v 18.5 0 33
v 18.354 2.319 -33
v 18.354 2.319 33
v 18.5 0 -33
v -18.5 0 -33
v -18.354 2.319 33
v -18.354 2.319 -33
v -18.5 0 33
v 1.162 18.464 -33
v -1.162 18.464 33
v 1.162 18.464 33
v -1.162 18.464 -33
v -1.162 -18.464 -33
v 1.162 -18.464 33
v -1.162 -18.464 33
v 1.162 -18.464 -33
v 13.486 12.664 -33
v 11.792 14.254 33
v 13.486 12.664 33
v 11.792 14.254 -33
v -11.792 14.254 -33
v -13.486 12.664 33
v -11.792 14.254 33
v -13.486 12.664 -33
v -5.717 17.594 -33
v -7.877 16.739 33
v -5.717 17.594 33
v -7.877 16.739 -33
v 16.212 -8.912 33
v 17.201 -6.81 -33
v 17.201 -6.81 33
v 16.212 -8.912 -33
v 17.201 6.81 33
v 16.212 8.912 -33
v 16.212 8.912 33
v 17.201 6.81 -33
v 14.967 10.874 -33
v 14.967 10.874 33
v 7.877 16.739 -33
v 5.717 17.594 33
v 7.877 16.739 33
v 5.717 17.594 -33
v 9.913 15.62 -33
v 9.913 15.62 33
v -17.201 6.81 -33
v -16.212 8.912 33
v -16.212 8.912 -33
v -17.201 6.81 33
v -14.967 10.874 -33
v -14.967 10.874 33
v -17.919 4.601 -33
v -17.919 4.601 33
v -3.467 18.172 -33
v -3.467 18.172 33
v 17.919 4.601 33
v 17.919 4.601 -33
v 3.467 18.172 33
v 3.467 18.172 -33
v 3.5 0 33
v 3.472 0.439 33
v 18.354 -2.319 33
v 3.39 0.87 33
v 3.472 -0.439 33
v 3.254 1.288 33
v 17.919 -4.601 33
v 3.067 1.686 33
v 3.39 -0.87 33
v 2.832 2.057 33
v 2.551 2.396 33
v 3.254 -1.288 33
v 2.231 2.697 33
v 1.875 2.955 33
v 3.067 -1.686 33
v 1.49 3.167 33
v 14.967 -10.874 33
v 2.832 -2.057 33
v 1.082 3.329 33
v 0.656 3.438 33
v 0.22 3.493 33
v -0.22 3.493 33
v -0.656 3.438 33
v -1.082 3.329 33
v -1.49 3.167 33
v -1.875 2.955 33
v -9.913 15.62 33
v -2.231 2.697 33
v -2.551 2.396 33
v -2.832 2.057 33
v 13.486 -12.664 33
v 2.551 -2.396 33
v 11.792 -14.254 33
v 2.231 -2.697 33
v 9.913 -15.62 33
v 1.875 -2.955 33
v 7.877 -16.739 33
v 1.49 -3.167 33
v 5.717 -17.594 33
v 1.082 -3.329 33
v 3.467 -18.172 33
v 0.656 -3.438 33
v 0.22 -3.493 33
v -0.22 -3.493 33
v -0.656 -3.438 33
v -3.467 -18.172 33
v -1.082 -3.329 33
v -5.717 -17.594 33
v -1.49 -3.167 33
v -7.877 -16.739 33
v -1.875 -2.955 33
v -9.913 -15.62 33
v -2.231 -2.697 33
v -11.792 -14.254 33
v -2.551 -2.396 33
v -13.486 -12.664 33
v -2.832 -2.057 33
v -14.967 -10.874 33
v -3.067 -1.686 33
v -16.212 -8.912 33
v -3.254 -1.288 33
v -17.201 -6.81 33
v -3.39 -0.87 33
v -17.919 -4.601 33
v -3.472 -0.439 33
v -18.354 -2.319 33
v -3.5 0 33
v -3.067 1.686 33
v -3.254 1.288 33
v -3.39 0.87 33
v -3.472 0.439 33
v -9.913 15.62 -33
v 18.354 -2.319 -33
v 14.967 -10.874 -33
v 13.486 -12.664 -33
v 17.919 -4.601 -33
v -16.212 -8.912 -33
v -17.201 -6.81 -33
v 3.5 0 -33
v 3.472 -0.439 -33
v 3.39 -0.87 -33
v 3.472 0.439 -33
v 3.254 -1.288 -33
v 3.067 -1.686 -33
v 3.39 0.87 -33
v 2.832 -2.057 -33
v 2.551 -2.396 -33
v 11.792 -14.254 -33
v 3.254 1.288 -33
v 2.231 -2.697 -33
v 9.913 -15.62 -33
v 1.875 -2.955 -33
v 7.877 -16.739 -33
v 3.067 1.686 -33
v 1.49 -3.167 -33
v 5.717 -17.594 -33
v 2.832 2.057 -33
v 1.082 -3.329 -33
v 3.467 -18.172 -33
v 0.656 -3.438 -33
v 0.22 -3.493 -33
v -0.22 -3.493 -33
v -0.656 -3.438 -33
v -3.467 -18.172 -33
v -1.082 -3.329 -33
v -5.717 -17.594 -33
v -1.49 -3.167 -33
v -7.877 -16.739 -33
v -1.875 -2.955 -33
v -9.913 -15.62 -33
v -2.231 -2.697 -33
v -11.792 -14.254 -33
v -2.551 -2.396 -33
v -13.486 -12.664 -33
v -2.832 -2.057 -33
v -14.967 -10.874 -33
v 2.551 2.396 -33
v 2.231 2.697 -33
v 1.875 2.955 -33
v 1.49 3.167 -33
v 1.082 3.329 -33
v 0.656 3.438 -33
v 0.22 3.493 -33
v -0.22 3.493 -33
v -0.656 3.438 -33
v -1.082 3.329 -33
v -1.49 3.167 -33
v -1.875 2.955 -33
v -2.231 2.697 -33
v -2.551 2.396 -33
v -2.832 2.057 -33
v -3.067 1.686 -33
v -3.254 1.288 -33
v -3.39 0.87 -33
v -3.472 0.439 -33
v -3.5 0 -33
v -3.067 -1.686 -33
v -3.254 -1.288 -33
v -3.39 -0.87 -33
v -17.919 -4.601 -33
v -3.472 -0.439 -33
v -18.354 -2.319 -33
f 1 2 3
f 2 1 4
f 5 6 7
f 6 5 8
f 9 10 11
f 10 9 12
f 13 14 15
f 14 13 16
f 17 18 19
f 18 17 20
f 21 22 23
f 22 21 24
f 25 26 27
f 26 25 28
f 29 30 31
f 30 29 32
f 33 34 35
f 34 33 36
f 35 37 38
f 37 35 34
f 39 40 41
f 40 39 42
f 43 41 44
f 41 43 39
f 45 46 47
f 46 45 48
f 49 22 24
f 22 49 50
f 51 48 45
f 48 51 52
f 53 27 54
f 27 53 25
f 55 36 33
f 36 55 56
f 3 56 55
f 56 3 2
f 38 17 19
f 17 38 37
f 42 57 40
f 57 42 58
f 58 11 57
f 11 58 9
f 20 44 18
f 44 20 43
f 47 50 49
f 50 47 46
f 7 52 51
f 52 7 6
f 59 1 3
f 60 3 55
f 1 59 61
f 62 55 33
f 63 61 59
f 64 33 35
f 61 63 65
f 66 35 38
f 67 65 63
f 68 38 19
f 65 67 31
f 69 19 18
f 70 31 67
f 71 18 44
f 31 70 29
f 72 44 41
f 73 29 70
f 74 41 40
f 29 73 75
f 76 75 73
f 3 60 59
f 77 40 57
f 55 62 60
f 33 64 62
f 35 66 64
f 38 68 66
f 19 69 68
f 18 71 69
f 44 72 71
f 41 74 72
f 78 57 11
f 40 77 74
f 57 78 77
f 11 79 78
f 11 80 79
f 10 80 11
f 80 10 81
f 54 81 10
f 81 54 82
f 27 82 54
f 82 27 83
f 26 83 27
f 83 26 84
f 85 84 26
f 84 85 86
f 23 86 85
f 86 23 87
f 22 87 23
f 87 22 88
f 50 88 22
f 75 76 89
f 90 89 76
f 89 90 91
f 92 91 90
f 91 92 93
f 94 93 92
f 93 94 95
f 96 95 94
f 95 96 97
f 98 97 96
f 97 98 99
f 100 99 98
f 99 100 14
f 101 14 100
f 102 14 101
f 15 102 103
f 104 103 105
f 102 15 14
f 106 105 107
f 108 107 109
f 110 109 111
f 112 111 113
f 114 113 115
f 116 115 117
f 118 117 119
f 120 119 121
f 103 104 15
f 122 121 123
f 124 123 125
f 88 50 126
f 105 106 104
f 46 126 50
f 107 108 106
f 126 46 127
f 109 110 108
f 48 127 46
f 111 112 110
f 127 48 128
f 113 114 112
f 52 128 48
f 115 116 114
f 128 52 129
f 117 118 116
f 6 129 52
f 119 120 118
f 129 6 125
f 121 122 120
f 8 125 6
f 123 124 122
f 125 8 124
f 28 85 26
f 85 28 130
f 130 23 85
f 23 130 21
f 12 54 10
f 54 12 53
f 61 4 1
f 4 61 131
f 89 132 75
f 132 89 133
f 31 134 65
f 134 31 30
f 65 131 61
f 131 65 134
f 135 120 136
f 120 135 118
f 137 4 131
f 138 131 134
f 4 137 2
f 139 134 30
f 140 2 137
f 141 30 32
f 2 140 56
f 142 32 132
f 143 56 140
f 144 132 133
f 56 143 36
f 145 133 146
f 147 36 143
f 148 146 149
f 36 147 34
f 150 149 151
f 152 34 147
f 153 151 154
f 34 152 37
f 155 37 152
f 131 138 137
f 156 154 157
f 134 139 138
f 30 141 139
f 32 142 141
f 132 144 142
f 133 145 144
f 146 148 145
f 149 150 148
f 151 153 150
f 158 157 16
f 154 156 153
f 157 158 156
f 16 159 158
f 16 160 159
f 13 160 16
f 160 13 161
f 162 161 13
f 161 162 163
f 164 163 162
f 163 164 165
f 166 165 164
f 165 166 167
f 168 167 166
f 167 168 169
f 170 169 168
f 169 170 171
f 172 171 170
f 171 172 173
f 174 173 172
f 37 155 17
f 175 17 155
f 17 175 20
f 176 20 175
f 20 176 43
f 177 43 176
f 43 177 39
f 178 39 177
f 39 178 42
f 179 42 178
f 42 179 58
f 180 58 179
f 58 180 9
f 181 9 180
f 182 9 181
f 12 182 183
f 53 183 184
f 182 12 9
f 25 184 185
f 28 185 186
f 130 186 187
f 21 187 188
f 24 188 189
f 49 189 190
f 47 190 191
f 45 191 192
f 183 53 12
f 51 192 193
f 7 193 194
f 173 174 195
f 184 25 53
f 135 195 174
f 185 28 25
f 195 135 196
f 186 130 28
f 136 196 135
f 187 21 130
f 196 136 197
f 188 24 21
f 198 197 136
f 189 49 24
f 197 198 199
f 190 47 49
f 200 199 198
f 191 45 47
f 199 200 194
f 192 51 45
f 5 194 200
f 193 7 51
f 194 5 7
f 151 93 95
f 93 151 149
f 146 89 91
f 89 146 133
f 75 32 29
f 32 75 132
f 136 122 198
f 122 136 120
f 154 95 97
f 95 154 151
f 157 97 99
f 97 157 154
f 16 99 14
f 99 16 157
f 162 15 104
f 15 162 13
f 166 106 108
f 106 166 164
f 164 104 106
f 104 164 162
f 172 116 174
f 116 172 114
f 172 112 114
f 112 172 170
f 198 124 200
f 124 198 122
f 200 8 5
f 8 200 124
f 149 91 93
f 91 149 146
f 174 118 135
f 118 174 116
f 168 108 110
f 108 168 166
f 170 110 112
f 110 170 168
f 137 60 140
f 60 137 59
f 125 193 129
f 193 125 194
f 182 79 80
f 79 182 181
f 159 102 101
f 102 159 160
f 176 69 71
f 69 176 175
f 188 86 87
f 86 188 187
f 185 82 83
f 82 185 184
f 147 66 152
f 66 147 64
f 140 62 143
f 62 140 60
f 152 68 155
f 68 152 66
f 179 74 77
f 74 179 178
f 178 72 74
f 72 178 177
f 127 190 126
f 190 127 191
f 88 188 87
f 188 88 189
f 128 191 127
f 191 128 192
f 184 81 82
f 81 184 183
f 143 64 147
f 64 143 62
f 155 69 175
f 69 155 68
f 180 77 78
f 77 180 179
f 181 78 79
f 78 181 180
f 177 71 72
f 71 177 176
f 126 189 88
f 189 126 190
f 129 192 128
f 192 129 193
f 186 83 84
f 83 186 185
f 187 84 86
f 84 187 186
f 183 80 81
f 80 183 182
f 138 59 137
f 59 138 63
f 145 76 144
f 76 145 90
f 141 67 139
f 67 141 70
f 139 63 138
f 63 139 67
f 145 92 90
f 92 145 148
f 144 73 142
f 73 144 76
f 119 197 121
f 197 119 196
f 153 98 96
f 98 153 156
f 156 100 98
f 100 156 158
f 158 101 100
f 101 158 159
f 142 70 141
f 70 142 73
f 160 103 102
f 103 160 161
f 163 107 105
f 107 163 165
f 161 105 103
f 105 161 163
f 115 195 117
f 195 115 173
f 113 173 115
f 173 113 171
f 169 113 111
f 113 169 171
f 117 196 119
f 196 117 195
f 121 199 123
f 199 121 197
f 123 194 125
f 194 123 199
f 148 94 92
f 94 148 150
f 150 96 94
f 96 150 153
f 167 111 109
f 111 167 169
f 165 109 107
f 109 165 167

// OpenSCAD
$fn = 50;


difference() {
	union() {
		translate(v = [0, 0, -33.0000000000]) {
			cylinder(h = 66, r = 18.5000000000);
		}
	}
	union() {
		translate(v = [0, 0, -100.0000000000]) {
			cylinder(h = 200, r = 3.5000000000);
		}
	}
}
